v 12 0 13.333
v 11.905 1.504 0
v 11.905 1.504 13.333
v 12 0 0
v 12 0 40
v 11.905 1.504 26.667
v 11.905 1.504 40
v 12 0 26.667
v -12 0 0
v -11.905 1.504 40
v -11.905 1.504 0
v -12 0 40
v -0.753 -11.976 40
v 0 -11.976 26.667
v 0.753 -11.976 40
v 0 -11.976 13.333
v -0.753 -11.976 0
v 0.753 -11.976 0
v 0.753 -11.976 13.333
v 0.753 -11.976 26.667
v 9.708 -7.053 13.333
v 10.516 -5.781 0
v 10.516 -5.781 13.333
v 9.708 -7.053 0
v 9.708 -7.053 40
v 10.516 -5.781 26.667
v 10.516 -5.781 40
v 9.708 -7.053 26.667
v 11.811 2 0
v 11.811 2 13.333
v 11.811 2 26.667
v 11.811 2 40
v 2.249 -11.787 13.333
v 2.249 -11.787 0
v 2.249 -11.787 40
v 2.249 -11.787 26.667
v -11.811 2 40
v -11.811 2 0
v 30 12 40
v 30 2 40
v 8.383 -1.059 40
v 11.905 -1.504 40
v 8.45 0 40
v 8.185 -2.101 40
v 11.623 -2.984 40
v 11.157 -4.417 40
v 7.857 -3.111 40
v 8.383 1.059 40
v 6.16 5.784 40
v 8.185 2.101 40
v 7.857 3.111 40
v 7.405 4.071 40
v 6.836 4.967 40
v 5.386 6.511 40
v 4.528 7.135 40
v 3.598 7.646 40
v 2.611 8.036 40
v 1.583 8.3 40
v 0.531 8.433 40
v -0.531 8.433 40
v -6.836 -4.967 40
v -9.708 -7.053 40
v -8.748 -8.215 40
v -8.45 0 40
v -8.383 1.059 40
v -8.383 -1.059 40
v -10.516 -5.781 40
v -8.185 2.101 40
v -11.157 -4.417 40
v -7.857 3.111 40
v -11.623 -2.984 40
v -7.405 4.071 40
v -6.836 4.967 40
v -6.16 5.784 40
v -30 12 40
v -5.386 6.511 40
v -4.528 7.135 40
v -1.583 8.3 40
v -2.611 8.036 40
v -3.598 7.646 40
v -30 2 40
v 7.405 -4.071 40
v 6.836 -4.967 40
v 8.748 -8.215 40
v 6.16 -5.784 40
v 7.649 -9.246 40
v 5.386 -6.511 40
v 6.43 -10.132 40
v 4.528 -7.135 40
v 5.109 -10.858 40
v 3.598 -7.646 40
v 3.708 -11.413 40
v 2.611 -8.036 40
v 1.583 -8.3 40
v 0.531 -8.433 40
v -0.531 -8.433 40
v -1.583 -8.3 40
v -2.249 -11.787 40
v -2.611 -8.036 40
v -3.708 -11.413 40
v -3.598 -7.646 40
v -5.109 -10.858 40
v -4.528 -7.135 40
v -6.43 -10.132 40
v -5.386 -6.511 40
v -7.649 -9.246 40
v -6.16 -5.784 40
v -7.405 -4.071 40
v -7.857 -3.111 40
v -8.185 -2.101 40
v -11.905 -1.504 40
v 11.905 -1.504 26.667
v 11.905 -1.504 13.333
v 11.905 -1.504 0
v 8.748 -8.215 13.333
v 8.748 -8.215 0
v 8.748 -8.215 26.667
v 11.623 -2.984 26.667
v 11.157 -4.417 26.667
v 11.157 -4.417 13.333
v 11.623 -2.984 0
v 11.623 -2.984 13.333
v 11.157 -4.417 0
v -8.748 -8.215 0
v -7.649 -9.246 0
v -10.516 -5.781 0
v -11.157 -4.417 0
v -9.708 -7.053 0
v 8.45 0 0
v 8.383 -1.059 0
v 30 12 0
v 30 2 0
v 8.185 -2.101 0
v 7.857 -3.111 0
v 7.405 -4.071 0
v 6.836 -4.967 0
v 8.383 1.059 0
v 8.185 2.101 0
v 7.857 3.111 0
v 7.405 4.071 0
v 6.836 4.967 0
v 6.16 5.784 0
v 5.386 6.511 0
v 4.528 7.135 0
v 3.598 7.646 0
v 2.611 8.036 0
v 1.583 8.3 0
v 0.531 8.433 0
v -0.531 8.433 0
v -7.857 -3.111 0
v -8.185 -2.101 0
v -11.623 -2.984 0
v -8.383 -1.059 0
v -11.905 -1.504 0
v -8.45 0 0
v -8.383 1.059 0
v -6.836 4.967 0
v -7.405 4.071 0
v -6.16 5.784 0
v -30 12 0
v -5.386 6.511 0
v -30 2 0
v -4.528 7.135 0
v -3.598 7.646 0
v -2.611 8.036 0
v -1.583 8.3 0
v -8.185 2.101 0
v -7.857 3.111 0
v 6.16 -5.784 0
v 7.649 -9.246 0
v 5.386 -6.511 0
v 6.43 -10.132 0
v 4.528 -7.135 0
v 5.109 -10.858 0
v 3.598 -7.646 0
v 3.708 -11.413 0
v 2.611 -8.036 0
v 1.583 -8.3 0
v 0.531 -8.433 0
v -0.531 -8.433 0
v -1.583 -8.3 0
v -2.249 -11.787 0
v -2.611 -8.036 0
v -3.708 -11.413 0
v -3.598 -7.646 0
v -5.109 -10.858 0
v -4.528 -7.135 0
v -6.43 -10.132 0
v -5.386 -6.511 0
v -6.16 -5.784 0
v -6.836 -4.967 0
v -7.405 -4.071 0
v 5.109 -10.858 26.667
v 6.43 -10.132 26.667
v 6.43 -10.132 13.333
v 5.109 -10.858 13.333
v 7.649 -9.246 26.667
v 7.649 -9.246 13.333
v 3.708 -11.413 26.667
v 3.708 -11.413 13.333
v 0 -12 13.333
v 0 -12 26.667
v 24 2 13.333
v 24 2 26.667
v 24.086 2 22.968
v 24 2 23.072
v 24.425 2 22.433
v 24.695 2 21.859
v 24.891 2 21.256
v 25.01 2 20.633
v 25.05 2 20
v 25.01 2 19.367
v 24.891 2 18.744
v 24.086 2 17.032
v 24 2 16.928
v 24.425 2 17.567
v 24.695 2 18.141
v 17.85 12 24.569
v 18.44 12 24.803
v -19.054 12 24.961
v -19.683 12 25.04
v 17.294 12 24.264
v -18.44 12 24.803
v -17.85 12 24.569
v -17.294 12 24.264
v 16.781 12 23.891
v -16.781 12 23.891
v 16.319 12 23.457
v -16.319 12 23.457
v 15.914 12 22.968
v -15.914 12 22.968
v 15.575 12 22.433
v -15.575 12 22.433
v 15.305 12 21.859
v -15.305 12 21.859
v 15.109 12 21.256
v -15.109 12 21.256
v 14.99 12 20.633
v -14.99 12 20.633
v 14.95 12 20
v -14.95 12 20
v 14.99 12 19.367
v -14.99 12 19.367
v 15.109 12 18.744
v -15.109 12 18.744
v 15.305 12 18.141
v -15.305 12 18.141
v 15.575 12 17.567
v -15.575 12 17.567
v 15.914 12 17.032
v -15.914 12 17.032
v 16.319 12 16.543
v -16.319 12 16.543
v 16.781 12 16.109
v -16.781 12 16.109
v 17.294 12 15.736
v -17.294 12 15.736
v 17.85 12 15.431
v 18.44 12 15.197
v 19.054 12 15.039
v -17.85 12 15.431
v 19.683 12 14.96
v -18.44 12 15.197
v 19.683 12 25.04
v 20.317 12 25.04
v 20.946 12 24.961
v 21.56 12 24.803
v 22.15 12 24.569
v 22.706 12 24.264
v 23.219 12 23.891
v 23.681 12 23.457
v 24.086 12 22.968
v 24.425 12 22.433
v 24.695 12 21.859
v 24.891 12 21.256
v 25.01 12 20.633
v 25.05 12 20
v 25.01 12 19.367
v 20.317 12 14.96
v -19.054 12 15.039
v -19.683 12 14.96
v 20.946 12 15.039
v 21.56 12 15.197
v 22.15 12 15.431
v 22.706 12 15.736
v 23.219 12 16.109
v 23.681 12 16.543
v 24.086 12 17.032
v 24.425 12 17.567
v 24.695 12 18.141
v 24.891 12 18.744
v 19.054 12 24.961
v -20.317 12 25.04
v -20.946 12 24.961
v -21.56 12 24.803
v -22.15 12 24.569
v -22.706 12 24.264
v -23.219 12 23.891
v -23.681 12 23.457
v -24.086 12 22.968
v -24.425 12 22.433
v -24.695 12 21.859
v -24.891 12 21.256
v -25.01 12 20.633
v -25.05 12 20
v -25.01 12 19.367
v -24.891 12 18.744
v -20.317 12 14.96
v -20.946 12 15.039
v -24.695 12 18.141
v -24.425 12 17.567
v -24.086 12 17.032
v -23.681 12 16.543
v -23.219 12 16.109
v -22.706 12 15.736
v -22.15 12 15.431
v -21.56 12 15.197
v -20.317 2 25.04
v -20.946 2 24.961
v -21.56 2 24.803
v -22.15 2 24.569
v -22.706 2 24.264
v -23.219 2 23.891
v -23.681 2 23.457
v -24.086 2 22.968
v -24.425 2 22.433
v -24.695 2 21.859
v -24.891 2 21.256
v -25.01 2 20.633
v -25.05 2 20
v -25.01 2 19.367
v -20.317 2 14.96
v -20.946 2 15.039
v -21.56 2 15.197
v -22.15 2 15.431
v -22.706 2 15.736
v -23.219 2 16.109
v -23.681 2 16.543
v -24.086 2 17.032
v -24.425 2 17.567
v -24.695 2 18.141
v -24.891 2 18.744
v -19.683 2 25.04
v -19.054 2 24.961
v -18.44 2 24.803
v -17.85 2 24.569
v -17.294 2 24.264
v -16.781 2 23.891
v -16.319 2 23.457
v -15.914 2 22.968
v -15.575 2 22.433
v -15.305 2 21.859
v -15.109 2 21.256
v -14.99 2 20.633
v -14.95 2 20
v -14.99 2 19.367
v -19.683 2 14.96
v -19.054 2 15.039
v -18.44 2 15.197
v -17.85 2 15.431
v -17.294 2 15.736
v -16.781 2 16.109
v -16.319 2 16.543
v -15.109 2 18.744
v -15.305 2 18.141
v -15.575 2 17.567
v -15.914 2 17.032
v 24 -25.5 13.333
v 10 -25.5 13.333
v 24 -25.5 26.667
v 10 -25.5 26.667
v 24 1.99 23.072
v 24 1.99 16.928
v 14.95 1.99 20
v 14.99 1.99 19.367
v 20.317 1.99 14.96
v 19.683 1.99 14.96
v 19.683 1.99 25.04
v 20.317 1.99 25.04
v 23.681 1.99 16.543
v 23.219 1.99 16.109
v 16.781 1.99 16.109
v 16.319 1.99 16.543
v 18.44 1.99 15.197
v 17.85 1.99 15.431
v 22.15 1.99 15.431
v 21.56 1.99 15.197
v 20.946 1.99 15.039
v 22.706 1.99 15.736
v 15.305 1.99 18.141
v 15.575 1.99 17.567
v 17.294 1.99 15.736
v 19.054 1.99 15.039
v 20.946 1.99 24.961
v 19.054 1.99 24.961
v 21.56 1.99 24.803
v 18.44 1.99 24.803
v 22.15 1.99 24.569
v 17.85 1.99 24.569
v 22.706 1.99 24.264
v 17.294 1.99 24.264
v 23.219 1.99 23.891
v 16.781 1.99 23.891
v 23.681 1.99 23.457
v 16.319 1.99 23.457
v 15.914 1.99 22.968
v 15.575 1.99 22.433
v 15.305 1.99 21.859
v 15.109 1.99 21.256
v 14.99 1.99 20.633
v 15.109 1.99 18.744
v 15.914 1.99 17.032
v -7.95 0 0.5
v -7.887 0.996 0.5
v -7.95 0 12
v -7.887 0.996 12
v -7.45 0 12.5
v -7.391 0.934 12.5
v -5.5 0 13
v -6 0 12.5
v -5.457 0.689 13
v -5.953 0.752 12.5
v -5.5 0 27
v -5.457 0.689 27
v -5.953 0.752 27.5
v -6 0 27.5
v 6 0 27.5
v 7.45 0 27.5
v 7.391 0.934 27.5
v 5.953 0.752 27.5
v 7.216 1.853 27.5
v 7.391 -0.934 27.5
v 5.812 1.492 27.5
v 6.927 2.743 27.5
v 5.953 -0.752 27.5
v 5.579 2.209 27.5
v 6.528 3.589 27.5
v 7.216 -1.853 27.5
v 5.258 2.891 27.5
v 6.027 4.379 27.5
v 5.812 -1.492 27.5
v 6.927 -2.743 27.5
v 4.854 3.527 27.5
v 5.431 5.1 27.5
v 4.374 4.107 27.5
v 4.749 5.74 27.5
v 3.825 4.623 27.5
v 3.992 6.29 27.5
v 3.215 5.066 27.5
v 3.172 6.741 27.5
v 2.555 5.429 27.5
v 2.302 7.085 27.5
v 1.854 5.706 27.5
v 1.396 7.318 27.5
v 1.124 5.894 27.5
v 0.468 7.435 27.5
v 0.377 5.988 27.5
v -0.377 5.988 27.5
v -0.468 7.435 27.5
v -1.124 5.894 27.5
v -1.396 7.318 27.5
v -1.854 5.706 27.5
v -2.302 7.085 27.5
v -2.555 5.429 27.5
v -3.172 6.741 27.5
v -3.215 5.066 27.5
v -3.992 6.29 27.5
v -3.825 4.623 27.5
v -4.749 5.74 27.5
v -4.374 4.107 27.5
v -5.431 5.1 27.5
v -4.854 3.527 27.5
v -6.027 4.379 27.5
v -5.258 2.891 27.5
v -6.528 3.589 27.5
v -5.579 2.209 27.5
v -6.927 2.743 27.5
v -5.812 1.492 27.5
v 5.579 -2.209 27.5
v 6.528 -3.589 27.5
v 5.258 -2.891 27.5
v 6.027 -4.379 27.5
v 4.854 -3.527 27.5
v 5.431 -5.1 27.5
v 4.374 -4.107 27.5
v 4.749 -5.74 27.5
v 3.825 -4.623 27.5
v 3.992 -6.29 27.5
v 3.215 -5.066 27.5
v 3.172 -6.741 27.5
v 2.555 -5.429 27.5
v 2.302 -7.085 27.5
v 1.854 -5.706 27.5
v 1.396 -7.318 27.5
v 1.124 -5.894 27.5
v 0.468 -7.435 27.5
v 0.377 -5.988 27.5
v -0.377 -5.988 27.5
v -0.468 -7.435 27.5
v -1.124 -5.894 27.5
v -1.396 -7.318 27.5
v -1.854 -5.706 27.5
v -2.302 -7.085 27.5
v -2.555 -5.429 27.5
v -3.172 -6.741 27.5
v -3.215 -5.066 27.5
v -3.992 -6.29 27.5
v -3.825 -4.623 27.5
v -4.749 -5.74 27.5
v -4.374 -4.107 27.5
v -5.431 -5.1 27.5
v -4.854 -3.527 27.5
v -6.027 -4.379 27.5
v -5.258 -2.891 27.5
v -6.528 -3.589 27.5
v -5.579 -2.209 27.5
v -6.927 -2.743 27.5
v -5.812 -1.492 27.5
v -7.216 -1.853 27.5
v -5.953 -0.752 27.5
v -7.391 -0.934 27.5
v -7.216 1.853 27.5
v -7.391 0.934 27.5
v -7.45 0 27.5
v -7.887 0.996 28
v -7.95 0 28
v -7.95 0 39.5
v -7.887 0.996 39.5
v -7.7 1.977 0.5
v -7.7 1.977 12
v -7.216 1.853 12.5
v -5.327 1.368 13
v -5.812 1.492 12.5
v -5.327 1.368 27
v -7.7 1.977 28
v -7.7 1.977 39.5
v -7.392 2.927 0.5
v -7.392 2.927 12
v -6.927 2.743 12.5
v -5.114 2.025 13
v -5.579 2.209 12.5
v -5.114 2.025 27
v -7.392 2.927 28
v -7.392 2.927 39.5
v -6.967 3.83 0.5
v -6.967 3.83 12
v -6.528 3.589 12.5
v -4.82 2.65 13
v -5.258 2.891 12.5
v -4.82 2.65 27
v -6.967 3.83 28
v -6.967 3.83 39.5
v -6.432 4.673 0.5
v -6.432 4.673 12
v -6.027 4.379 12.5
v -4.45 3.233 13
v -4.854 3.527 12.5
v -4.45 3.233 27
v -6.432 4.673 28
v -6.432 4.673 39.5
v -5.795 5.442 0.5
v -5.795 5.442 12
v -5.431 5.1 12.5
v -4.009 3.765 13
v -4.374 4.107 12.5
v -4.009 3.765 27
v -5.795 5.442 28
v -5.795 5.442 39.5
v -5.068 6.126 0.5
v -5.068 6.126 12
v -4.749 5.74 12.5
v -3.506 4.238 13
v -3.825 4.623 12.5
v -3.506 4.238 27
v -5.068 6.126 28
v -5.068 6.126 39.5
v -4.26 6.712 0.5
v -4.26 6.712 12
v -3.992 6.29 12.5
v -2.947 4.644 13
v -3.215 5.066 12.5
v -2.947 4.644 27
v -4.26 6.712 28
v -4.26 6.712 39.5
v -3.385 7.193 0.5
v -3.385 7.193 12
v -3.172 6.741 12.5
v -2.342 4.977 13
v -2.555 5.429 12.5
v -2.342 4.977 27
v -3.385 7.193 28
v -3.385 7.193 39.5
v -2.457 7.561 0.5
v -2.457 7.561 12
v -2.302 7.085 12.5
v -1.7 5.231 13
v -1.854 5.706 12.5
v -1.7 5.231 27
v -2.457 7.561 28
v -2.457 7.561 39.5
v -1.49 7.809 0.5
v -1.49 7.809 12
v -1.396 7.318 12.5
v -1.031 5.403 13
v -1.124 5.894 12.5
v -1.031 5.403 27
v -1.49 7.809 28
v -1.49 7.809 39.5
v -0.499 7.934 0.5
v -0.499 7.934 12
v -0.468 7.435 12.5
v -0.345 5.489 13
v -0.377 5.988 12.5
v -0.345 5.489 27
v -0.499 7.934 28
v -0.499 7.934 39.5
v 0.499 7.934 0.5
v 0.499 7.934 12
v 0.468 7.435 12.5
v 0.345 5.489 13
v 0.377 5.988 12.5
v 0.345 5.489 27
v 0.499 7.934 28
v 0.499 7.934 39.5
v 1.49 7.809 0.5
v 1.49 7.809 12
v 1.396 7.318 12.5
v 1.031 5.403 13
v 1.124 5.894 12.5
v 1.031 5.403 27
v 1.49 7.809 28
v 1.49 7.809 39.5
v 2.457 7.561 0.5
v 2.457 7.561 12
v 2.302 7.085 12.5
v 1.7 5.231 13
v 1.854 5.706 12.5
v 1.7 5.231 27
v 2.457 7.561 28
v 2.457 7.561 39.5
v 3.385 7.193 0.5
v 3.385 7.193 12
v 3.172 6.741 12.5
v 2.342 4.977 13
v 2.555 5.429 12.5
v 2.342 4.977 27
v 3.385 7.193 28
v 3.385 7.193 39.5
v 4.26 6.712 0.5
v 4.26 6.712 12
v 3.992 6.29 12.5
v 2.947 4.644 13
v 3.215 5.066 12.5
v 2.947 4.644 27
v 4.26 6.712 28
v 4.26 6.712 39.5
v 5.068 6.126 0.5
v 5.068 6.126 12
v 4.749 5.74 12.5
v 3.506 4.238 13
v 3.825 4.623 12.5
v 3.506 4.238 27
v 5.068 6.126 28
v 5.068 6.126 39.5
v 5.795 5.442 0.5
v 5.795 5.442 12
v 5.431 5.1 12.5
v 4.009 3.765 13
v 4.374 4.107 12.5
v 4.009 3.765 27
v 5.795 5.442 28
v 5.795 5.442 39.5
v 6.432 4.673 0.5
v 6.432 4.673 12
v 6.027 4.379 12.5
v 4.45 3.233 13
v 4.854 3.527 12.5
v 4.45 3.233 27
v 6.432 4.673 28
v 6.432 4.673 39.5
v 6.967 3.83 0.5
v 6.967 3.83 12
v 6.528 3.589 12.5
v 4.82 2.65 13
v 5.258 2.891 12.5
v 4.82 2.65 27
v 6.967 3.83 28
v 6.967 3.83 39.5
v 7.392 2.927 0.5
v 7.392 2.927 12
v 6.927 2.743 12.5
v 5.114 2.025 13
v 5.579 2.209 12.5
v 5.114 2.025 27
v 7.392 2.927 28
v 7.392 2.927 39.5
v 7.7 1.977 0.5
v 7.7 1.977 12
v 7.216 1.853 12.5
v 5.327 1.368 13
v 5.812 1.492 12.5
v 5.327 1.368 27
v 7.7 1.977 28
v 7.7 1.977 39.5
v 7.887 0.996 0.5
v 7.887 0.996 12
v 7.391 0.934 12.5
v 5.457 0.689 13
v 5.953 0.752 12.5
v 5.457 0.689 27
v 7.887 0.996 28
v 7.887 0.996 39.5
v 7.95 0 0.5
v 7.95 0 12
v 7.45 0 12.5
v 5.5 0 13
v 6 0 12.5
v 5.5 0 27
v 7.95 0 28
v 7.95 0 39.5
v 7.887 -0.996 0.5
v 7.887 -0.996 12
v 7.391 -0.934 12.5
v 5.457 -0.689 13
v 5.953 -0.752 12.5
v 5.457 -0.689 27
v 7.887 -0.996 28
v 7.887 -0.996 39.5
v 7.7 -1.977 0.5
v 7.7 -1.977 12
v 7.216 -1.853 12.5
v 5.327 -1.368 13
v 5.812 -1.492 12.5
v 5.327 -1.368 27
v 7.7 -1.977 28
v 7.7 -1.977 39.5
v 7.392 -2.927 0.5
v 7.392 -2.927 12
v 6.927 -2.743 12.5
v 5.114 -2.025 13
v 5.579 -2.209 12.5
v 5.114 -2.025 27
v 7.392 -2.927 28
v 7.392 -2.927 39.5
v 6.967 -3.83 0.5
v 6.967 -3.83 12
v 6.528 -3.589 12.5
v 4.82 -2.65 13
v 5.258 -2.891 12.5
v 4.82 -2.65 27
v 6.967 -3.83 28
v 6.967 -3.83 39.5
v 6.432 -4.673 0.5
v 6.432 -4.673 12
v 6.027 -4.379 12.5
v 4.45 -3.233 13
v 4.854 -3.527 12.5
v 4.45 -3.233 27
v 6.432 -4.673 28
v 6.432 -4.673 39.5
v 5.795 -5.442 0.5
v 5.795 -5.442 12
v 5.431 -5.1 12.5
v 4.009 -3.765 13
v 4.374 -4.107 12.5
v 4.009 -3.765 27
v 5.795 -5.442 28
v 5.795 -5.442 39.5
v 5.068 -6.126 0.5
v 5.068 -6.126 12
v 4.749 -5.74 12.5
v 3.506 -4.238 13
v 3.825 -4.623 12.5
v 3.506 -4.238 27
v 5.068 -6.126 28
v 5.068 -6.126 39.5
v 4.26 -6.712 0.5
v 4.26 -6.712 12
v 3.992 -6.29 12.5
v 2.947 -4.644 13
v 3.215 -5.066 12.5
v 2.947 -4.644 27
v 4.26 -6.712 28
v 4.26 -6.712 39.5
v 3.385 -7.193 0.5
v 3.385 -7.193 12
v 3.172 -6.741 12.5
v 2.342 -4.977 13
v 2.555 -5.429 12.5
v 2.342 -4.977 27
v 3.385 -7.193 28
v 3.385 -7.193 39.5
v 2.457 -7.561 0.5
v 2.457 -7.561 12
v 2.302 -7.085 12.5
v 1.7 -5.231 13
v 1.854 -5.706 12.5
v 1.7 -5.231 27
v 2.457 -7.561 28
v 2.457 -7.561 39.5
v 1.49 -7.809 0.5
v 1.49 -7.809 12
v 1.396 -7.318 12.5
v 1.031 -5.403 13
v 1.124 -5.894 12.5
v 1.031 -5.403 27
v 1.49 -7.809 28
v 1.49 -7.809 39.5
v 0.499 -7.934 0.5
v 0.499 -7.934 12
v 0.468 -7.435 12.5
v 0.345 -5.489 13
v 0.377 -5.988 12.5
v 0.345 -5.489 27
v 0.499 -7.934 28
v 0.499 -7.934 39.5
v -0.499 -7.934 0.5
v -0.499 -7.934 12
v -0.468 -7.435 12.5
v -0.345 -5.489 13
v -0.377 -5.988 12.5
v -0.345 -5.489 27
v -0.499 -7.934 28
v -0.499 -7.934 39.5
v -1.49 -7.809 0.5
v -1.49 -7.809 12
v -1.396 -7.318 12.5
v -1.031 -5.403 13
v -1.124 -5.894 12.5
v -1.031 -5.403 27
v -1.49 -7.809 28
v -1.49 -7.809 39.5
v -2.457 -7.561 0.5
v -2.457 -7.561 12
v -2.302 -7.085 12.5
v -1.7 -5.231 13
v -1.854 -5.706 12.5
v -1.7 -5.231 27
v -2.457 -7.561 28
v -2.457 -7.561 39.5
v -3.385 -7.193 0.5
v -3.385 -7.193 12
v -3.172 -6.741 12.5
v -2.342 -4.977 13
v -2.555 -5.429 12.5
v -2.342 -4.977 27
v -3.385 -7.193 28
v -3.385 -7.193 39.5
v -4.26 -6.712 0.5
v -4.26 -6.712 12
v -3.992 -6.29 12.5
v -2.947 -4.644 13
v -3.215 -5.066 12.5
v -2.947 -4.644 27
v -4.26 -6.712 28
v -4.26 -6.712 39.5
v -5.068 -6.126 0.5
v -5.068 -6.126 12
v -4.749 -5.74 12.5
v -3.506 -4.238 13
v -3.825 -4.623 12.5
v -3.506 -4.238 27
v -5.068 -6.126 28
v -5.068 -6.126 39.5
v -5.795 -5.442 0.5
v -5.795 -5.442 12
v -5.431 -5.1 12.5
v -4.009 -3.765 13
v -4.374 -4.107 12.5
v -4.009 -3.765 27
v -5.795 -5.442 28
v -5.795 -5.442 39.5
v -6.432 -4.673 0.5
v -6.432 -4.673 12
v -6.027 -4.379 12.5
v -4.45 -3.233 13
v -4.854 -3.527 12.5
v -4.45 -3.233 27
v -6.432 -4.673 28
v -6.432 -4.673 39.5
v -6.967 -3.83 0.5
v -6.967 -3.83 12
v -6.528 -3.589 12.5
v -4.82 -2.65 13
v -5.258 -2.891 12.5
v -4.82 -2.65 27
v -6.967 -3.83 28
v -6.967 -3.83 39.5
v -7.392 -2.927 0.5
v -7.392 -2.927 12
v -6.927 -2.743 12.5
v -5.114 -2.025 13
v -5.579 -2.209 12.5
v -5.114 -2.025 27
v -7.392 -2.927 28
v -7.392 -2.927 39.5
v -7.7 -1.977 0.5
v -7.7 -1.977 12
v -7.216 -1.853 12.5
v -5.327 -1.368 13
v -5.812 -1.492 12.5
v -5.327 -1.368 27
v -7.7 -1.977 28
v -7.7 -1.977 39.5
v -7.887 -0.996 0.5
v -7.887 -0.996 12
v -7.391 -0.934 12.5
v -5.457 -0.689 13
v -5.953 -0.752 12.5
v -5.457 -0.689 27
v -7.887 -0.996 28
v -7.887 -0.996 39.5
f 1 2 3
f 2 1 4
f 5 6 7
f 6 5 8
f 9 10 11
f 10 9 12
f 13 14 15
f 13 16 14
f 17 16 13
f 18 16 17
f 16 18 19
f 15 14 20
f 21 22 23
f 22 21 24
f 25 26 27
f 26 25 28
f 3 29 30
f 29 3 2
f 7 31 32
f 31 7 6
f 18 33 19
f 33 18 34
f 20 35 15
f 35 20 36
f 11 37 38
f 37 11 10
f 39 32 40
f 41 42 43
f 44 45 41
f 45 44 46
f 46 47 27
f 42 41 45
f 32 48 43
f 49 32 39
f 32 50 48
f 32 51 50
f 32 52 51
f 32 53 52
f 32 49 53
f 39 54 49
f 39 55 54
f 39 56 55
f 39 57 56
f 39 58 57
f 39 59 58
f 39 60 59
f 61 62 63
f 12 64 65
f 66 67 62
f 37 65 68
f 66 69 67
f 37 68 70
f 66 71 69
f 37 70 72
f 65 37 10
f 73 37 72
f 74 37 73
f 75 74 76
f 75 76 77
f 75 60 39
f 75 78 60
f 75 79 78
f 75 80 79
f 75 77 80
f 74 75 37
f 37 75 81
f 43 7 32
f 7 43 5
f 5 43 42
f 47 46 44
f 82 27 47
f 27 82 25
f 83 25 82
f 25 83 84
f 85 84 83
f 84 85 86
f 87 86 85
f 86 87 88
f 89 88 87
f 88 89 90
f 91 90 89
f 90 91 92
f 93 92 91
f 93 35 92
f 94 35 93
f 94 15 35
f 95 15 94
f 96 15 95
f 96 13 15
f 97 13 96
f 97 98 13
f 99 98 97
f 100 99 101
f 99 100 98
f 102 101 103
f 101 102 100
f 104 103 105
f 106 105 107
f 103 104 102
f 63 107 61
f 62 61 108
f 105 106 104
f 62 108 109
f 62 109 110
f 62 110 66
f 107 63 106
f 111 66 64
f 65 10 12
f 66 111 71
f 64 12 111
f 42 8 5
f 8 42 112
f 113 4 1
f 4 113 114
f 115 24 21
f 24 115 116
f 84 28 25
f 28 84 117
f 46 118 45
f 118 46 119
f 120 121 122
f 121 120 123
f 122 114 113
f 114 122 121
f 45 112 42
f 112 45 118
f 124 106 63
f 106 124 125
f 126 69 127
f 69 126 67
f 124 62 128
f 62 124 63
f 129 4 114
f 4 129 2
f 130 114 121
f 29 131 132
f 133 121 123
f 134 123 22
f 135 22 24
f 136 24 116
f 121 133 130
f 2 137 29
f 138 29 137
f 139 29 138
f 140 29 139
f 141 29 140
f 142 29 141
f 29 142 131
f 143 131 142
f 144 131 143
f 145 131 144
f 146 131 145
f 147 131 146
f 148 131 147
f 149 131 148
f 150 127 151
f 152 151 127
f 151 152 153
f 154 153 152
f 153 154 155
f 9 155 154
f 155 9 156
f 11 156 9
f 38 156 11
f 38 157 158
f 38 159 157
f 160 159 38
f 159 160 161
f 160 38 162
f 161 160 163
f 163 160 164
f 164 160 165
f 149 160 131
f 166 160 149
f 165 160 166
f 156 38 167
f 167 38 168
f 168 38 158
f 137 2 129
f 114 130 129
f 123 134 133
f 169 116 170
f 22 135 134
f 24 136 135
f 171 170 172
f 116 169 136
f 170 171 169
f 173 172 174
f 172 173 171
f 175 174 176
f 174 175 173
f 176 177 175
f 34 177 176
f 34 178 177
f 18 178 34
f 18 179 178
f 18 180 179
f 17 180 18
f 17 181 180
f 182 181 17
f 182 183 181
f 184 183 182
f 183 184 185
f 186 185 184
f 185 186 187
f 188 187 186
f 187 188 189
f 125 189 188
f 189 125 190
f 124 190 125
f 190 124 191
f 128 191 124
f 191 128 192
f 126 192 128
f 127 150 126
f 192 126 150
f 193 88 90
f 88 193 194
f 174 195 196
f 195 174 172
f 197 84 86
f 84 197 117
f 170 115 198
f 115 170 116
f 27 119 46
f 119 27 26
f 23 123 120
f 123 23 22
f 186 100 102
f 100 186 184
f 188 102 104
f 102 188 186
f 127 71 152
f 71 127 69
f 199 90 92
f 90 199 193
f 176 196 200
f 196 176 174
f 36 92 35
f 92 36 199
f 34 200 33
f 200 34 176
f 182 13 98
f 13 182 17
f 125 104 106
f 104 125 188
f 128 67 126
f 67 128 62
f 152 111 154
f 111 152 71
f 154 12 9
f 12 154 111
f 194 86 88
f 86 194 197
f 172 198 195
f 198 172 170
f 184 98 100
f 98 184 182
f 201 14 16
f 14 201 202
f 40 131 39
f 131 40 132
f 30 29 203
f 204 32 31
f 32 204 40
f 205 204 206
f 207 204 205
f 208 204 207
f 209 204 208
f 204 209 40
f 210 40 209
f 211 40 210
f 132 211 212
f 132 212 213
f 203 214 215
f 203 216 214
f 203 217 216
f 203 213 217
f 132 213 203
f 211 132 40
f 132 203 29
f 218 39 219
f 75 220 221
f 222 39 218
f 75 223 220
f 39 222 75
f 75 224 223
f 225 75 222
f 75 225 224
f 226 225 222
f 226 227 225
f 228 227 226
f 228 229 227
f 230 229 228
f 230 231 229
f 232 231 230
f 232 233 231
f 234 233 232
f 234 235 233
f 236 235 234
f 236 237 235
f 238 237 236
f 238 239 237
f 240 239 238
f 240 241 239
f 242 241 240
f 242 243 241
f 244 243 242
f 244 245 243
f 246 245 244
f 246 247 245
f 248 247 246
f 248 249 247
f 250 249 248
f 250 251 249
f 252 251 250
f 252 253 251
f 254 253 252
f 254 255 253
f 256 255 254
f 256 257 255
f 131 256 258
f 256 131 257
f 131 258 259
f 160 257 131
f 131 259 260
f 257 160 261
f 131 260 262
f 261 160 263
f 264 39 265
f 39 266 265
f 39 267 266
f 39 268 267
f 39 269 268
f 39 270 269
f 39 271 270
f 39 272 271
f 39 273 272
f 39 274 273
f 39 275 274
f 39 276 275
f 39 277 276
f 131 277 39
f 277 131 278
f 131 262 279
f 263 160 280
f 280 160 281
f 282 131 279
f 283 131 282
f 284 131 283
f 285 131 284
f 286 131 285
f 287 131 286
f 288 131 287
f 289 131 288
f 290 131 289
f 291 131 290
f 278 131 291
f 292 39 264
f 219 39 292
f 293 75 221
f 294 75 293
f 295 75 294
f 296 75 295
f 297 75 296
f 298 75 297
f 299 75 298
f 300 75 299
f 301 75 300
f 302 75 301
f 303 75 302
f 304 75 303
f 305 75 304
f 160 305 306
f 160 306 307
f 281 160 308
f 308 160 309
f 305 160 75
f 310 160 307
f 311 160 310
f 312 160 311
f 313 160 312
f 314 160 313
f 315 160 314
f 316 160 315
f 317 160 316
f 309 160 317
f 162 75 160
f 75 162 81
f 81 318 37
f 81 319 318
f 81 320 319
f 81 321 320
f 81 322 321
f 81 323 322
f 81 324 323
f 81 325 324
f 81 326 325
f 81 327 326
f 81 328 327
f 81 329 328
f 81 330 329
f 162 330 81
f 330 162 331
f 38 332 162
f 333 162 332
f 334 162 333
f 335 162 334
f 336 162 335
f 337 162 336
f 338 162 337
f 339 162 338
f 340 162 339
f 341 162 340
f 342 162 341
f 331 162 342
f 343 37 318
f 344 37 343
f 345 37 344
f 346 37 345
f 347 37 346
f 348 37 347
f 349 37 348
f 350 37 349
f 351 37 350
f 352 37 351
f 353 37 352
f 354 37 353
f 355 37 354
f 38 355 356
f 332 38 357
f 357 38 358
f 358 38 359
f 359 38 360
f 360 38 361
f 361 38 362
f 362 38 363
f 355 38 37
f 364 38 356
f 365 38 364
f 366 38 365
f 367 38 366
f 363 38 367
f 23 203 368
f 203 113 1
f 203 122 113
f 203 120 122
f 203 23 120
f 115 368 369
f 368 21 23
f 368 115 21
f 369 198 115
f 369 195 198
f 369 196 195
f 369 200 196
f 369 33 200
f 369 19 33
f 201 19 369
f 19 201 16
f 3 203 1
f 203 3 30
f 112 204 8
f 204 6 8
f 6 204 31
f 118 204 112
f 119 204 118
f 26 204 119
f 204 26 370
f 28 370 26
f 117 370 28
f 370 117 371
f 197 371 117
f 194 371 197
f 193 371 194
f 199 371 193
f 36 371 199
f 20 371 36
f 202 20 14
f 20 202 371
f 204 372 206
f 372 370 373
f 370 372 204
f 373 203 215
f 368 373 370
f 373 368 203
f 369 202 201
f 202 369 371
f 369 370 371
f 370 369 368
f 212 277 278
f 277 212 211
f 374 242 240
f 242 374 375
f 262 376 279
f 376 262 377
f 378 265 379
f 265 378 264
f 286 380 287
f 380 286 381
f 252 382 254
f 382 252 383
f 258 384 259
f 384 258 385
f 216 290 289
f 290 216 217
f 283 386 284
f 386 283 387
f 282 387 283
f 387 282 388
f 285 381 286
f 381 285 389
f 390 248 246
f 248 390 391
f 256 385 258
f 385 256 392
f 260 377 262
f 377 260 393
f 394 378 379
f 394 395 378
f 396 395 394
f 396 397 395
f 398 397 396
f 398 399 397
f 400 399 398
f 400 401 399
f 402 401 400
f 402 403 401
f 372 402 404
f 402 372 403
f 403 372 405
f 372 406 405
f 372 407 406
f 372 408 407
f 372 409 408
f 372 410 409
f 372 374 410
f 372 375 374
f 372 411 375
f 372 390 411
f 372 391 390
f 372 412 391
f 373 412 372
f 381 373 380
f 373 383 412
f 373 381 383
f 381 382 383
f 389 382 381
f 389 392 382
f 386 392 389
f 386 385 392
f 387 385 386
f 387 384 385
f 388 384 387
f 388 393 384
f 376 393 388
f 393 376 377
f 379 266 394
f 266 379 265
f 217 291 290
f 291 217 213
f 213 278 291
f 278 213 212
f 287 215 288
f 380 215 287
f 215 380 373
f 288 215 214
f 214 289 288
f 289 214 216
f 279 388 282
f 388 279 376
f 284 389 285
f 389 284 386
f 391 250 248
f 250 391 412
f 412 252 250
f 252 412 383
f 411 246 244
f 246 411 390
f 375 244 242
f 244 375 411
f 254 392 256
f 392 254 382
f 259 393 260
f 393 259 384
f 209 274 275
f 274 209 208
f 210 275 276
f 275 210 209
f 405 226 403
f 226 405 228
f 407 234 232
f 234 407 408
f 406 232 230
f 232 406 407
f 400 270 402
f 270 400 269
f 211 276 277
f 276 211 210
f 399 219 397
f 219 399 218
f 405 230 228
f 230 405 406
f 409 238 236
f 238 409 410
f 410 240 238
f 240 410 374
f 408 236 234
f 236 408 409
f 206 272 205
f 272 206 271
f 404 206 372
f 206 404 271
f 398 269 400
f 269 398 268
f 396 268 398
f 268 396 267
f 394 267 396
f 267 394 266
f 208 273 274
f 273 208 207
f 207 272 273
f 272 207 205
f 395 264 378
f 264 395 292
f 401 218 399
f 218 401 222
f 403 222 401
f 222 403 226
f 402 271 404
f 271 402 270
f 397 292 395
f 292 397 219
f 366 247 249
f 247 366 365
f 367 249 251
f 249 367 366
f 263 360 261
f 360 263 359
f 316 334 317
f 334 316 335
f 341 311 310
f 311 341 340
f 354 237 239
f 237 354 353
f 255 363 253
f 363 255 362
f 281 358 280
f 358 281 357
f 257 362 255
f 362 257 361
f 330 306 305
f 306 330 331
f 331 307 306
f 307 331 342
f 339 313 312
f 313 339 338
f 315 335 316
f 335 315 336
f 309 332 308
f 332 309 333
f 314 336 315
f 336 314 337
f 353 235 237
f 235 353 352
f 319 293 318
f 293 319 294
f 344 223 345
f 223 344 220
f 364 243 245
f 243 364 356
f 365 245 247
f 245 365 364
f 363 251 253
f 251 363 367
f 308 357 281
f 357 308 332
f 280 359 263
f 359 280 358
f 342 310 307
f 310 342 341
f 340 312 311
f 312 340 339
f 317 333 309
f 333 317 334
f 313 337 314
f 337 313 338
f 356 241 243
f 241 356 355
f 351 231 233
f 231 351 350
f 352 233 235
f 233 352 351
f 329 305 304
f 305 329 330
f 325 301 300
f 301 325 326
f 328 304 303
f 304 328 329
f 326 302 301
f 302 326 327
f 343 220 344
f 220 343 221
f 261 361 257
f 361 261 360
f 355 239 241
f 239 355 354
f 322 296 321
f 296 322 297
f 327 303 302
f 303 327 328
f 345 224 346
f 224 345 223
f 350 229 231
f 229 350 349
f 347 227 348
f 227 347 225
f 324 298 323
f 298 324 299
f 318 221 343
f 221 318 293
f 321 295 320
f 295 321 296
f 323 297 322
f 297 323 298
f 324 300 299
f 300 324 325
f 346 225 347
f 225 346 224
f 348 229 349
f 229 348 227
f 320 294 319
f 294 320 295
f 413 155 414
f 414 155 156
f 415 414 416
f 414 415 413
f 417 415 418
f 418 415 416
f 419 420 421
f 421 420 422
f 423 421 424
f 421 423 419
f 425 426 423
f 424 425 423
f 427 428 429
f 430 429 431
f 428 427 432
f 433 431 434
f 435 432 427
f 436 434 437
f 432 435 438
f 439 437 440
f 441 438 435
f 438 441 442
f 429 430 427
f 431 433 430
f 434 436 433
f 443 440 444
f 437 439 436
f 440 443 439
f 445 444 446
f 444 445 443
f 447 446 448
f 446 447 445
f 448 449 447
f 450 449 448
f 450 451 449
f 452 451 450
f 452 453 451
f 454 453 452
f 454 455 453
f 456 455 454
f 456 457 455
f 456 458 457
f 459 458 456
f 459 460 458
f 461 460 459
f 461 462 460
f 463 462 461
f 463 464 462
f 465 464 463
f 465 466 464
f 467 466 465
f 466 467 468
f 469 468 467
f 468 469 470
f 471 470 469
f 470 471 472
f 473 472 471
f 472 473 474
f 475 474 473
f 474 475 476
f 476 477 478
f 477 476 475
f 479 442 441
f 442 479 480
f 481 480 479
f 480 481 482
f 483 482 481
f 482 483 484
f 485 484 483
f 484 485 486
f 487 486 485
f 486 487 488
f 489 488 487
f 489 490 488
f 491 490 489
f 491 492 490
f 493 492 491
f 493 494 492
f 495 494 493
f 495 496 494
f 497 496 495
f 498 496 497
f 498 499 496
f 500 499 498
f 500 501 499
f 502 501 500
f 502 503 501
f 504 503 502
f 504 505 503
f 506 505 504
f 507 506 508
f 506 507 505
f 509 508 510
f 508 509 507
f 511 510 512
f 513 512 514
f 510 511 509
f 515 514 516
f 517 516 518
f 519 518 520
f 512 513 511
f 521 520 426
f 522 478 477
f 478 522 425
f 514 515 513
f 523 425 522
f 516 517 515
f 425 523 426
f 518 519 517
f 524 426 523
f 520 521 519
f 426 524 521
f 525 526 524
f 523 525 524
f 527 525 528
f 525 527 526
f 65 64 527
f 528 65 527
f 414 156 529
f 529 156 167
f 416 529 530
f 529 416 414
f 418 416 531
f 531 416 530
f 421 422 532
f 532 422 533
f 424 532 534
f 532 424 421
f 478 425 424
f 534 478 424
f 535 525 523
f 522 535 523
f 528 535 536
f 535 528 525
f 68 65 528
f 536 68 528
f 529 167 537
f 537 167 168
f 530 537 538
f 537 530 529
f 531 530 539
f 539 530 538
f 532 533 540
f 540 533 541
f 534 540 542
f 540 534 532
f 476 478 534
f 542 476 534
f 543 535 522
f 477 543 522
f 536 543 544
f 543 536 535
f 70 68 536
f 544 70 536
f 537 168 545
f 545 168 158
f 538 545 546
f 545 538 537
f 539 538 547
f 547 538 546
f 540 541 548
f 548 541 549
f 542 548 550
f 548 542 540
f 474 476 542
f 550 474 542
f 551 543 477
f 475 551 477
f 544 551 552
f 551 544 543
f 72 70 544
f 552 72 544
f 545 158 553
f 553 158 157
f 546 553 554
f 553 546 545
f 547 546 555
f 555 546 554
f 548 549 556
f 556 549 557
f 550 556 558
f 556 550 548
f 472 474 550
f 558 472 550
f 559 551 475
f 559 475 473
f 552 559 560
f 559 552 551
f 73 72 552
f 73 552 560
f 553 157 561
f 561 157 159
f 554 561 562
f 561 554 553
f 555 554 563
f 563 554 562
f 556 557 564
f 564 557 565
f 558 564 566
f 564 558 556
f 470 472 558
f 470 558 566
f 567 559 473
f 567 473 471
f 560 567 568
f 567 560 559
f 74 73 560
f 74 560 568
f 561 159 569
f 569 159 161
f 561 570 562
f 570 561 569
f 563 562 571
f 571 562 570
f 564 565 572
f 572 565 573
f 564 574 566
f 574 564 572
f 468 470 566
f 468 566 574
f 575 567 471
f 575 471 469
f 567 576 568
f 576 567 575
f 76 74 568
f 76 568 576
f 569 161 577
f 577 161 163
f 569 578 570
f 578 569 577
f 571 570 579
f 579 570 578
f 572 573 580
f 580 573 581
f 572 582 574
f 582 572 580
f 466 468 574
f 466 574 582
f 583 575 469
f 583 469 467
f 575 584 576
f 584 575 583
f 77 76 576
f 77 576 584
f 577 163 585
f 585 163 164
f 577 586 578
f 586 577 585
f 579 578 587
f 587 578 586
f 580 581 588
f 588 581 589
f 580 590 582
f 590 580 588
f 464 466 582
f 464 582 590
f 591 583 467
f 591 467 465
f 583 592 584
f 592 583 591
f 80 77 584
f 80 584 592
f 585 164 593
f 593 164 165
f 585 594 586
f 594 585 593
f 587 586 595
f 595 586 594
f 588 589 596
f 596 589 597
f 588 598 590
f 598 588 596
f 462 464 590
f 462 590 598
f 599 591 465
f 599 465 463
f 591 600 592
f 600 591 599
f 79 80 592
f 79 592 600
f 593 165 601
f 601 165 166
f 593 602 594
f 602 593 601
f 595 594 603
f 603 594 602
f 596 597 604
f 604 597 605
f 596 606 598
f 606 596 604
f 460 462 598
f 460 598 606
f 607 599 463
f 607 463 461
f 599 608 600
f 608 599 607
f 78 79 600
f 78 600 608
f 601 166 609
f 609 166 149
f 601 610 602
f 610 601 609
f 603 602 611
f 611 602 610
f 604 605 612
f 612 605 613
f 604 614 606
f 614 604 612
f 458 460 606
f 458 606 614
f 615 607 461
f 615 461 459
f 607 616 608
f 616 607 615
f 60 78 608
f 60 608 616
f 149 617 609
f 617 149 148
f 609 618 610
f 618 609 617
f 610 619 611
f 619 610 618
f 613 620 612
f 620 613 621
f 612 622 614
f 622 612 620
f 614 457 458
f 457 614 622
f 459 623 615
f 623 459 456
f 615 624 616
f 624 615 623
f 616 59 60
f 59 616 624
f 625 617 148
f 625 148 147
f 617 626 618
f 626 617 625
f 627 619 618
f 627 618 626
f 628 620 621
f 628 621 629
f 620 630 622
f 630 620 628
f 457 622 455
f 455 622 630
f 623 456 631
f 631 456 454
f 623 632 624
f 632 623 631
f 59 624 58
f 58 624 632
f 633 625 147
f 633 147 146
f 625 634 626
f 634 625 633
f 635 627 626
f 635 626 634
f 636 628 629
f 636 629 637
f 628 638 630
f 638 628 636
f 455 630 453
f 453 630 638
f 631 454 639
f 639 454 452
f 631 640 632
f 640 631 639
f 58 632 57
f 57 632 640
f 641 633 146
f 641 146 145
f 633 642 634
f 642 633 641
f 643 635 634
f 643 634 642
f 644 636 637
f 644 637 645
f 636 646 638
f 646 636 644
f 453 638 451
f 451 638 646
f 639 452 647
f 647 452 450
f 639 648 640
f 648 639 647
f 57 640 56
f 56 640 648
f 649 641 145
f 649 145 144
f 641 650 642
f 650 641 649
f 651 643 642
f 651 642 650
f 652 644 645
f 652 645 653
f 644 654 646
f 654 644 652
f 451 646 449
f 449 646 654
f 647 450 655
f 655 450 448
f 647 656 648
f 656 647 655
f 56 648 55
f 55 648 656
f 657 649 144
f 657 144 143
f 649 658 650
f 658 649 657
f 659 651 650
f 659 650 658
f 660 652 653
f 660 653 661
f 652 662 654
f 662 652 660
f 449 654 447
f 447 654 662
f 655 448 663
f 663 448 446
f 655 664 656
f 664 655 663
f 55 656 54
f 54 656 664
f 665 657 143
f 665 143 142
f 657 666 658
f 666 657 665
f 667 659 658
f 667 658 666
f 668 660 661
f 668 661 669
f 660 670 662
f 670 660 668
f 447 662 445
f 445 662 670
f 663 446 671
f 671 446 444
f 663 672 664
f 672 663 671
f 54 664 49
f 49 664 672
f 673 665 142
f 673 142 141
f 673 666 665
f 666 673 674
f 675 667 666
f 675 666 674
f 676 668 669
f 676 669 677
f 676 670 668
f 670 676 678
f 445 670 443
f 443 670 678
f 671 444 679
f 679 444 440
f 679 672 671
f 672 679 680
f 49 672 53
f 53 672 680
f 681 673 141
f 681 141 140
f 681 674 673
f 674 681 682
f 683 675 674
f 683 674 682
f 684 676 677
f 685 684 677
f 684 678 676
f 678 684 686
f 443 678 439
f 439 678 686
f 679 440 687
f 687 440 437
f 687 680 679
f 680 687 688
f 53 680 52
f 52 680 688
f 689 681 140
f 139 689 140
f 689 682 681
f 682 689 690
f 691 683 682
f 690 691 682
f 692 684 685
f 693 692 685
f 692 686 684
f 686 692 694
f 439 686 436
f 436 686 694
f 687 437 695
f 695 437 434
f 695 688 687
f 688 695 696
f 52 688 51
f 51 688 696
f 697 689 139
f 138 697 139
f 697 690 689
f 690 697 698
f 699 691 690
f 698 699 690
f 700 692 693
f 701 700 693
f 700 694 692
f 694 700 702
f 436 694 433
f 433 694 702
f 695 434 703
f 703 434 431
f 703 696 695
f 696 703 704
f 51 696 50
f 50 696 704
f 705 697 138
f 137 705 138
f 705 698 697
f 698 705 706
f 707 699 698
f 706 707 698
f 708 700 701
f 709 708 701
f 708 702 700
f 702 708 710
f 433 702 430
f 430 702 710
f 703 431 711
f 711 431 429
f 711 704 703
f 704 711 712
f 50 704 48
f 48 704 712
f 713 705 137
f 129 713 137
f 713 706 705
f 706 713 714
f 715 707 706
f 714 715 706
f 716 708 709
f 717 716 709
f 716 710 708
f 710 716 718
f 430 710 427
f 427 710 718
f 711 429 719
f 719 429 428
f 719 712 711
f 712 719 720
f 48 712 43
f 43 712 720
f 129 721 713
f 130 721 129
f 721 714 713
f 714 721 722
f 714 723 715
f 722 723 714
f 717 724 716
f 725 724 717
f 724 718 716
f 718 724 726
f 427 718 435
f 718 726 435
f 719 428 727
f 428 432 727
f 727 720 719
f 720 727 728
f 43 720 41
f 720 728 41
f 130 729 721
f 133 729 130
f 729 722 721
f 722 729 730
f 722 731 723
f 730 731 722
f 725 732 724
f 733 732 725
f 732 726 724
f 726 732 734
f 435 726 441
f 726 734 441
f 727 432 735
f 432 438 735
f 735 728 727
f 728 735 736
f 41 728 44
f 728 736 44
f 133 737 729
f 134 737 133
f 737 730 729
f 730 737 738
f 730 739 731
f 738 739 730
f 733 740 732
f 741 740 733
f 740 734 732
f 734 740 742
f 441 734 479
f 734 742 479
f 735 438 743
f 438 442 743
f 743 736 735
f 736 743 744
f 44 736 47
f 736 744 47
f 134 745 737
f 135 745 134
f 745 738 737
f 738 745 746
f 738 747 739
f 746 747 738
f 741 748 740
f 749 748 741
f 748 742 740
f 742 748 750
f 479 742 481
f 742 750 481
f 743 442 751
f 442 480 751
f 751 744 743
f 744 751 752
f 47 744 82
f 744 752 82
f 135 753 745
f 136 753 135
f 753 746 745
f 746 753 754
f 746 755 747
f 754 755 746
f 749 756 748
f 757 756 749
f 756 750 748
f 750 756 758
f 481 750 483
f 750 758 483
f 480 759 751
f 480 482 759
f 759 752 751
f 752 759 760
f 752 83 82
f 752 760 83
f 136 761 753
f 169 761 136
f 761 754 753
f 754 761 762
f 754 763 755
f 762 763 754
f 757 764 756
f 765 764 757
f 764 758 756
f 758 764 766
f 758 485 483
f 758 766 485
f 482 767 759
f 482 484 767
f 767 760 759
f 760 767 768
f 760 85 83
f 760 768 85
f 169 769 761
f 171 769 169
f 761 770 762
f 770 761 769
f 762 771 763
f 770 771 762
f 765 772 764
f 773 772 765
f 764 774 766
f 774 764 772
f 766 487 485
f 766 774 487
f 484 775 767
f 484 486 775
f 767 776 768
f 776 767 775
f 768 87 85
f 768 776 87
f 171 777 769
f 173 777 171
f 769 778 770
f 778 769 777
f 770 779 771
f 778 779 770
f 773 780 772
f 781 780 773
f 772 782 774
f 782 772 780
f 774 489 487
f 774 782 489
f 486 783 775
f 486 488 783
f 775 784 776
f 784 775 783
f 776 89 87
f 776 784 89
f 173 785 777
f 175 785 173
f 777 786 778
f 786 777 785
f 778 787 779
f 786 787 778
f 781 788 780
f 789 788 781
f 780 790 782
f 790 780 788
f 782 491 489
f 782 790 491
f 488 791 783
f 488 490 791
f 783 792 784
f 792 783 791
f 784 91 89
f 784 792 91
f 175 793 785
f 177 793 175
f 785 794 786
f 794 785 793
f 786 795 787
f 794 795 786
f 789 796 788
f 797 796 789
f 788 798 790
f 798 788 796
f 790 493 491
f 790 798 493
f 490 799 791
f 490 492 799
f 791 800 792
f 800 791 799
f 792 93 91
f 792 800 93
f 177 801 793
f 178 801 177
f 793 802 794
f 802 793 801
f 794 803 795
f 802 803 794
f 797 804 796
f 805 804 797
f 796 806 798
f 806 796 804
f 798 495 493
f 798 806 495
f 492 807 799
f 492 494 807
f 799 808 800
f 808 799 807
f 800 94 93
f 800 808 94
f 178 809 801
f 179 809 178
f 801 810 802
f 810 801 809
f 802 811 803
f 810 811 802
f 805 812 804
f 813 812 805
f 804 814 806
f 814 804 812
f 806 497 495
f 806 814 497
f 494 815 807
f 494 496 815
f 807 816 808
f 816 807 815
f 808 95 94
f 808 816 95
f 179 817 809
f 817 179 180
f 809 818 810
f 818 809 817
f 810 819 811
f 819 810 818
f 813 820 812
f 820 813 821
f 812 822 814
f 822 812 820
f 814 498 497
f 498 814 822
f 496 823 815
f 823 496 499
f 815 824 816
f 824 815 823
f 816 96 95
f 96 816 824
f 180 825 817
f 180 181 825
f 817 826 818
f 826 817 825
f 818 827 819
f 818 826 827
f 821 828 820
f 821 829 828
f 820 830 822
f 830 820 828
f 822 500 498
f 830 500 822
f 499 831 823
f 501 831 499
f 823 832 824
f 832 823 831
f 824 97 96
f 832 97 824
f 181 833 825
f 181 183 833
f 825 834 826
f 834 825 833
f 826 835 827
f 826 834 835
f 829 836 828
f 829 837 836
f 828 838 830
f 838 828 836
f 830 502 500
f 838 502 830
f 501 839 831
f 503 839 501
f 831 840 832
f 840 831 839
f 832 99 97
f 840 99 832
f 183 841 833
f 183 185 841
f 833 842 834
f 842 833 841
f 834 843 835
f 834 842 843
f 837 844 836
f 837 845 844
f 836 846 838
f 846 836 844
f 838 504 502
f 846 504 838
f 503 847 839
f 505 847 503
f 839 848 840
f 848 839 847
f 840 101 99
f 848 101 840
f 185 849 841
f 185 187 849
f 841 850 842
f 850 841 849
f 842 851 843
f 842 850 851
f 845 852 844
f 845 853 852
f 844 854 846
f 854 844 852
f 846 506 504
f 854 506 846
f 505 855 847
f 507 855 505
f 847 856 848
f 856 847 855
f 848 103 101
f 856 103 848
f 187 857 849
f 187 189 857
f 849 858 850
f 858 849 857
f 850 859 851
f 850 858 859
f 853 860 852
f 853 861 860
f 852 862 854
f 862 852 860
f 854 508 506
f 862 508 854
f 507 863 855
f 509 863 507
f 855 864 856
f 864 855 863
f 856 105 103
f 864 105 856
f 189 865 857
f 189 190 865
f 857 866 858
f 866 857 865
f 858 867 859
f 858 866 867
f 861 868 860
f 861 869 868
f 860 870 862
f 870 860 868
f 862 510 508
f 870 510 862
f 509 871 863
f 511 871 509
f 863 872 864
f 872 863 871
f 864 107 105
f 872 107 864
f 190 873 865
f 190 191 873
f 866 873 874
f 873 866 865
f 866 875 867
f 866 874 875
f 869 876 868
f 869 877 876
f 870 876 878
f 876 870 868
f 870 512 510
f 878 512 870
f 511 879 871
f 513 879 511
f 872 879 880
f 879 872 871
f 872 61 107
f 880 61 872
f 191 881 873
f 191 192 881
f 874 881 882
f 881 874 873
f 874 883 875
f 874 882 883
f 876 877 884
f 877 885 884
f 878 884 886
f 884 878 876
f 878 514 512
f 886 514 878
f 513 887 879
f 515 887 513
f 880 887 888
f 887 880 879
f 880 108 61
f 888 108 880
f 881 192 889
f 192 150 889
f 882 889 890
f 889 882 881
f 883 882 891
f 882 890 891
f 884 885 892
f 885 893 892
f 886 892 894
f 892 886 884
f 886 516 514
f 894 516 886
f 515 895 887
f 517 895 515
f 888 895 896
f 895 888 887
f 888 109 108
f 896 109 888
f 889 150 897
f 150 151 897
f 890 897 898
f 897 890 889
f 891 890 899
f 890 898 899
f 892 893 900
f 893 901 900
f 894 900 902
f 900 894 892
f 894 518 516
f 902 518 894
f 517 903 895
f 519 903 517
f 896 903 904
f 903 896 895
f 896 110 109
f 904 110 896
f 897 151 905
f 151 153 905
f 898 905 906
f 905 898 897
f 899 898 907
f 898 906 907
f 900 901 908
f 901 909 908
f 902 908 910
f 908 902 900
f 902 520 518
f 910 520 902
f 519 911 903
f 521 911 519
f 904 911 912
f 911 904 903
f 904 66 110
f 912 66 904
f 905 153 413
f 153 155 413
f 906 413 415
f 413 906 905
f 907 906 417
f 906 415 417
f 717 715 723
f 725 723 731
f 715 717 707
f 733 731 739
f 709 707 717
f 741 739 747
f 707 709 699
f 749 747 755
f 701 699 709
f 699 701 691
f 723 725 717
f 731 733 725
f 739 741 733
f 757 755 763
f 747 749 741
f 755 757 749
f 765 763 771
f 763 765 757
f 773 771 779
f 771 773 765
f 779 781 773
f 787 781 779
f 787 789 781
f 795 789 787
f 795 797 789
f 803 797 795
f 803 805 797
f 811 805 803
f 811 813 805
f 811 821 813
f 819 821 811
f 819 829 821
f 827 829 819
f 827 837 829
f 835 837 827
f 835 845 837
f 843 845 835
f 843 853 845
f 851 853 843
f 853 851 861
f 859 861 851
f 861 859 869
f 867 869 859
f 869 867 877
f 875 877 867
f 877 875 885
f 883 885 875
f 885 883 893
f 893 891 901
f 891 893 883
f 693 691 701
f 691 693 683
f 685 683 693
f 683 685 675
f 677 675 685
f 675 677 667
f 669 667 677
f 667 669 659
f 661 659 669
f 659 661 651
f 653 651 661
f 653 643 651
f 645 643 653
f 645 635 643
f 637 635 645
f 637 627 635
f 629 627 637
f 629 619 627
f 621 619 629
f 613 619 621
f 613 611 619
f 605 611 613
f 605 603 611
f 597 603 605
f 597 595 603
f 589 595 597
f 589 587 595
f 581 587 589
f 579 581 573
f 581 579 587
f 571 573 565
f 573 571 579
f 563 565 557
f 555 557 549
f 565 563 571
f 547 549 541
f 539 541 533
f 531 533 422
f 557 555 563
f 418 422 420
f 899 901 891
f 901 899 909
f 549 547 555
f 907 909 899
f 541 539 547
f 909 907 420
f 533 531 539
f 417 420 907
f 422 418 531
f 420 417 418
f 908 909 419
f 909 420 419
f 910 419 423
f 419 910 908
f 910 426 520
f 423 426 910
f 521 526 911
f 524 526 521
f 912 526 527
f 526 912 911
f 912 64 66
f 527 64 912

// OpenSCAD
//Partie tenant les diam_tiges
largeur = 24;
epaisseur_support = 10;
largeur_support = 30;
hauteur=40;
diam_tige=10;
jeu_tige=0.1;
trou_de_vis_3 = 3.5;
x_axe_vis = -1;
largeur_ecrou_3 = 5.8;
hauteur_ecrou_3 = 6.5;
epaisseur_ecrou_3 = 3;
profondeur_trou_vis_3 = 22;
x_cent_tige = 20;
z_cent_tige = 10;
//glissière
diam_bague = 15.9;
prof_bague=12.5;
chanfrein = 0.5;

diff_trou = largeur+largeur/2 - (x_cent_tige+diam_tige/2);
facettes=50;
color("red")
//translate([0,0,largeur/2])
//rotate([0,-90,0])

difference()
{
    // BLoc principal
    union() 
    {
        cylinder(h=hauteur,r=largeur/2,$fn=facettes);
    
        translate([0,largeur/2-epaisseur_support,0])
            cube ([largeur_support, epaisseur_support, hauteur]);
        translate([-largeur_support,largeur/2-epaisseur_support,0])
            cube ([largeur_support, epaisseur_support, hauteur]);
        translate([0,0,hauteur/3])
        linear_extrude(height=hauteur/3)
            polygon( points=
            [[0,3],//0
            [24,3],//1
            [24,-25.5],//2
            [10,-25.5],//3
            [0,-12],//4
            ]);

    } // union

    
    
    //trou no 1
    translate([x_cent_tige,largeur/2-epaisseur_support-.01,hauteur/2])
        rotate([-90,0,0])
            cylinder(h=epaisseur_support+0.02,d=diam_tige+jeu_tige,$fn=facettes);
    //trou no 2
    translate([-x_cent_tige,largeur/2-epaisseur_support-.01,hauteur/2])
        rotate([-90,0,0])
            cylinder(h=largeur/2+2,r=(diam_tige+jeu_tige)/2,$fn=facettes);
/*  
    // Coche no 1
    translate([largeur*1.2,largeur/2-1,hauteur - z_cent_tige])
        cube([x_cent_tige,largeur,2],center=true);
    // Coche no 2
    translate([largeur*1.2,largeur/2,z_cent_tige])
        cube([x_cent_tige,largeur,2],center=true);
     
    //trou Vis de serrage 1
    translate([largeur+largeur/2-diff_trou/2+x_axe_vis,largeur/4+0.5,-0.5])
        cylinder(h=21,d=trou_de_vis_3,$fn=facettes);
        
    // passage ecrou 3mm
    translate([x_axe_vis+largeur+largeur/2-hauteur_ecrou_3+0.5,largeur/4+0.5-largeur_ecrou_3/2,diam_tige*1.52])
        cube([hauteur_ecrou_3+1,largeur_ecrou_3 ,epaisseur_ecrou_3]);
    translate([x_axe_vis+largeur+largeur/2-diff_trou/2-0.5,largeur/4+0.5,diam_tige*1.52])
        rotate([0,0,90])
            linear_extrude(height=epaisseur_ecrou_3)
                polygon( points=
                [[0,-hauteur_ecrou_3/2],//0
                [largeur_ecrou_3/2,hauteur_ecrou_3/2*sin(-30)],//1
                [largeur_ecrou_3/2,hauteur_ecrou_3/2*sin(30)],//2
                [0,hauteur_ecrou_3/2],//3
                [-largeur_ecrou_3/2,hauteur_ecrou_3/2*cos(60)],//4
                [-largeur_ecrou_3/2,-hauteur_ecrou_3/2*cos(60)]//5
                ]);

    //trou Vis de serrage 2
    translate([x_axe_vis+largeur+largeur/2-diff_trou/2,largeur/4+0.5,hauteur+0.5])
        rotate([0,180,0])
            cylinder(h=21,d=trou_de_vis_3,$fn=facettes);

    // Passage ecrou 2
    translate([x_axe_vis+largeur+largeur/2-hauteur_ecrou_3+0.5,largeur/4+0.5+largeur_ecrou_3/2,hauteur-diam_tige*1.52])
        rotate([180,0,0])
            cube([hauteur_ecrou_3+1,largeur_ecrou_3 ,epaisseur_ecrou_3]);
    translate([largeur+largeur/2-diff_trou/2-0.5,largeur/4+0.5,hauteur-diam_tige*1.52])
        rotate([0,180,90])
            linear_extrude(height=epaisseur_ecrou_3)
                polygon( points=
                [[0,-hauteur_ecrou_3/2],//0
                [largeur_ecrou_3/2,hauteur_ecrou_3/2*sin(-30)],//1
                [largeur_ecrou_3/2,hauteur_ecrou_3/2*sin(30)],//2
                [0,hauteur_ecrou_3/2],//3
                [-largeur_ecrou_3/2,hauteur_ecrou_3/2*cos(60)],//4
                [-largeur_ecrou_3/2,-hauteur_ecrou_3/2*cos(60)]//5
                ]);
                */
    //Extrusion 
    //translate([largeur*1.5,largeur/2,0])
    rotate_extrude($fn=facettes) 
        polygon( points=
        [[0,hauteur+1],//0
        [diam_bague/2+chanfrein,hauteur+1],//1
        [diam_bague/2+chanfrein,hauteur],//2
        [diam_bague/2,hauteur-chanfrein],//3
        [diam_bague/2,hauteur-prof_bague+chanfrein],//4
        [diam_bague/2-chanfrein,hauteur-prof_bague],//5
        [diam_tige/2+0.5+chanfrein,hauteur-prof_bague],//6
        [diam_tige/2+0.5,hauteur-prof_bague-chanfrein],//7
        [diam_tige/2+0.5,prof_bague+chanfrein], //8
        [diam_tige/2+0.5+chanfrein,prof_bague],
        [diam_bague/2-chanfrein,prof_bague],
        [diam_bague/2,prof_bague-chanfrein], //11
        [diam_bague/2,chanfrein],
        [diam_bague/2+chanfrein,0],
        [diam_bague/2+chanfrein,-1],
        [0,-1]
        ]);
        /*
 // vis de serrage courroie 1
    translate([19,-4.5,-1])
        cylinder(h=hauteur+2,d=trou_de_vis_3,$fn=facettes);
    // vis de serrage courroie 2   
    translate([15,-21,-1])
        cylinder(h=hauteur+2,d=trou_de_vis_3,$fn=facettes);
     // Ecrous de serrage courroie
    difference_ecrou = 9-epaisseur_ecrou_3/2;
    // Passage ecrou 3
     translate([15,-21,2*hauteur/3-epaisseur_ecrou_3-3])
     {
        rotate([0,0,-90])
        {
            translate([0,-largeur_ecrou_3/2,0])
                cube([hauteur_ecrou_3+10,largeur_ecrou_3 ,epaisseur_ecrou_3]);
            rotate([0,0,90])
                linear_extrude(height=epaisseur_ecrou_3)
                polygon( points=
                [[0,-hauteur_ecrou_3/2],//0
                [largeur_ecrou_3/2,hauteur_ecrou_3/2*sin(-30)],//1
                [largeur_ecrou_3/2,hauteur_ecrou_3/2*sin(30)],//2
                [0,hauteur_ecrou_3/2],//3
                [-largeur_ecrou_3/2,hauteur_ecrou_3/2*cos(60)],//4
                [-largeur_ecrou_3/2,-hauteur_ecrou_3/2*cos(60)]//5
                ]);
        }
    }  

    translate([15,-21,hauteur/3+3])
     {
        rotate([0,0,-90])
        {
            translate([0,-largeur_ecrou_3/2,0])
                cube([hauteur_ecrou_3+10,largeur_ecrou_3 ,epaisseur_ecrou_3]);
            rotate([0,0,90])
                linear_extrude(height=epaisseur_ecrou_3)
                polygon( points=
                [[0,-hauteur_ecrou_3/2],//0
                [largeur_ecrou_3/2,hauteur_ecrou_3/2*sin(-30)],//1
                [largeur_ecrou_3/2,hauteur_ecrou_3/2*sin(30)],//2
                [0,hauteur_ecrou_3/2],//3
                [-largeur_ecrou_3/2,hauteur_ecrou_3/2*cos(60)],//4
                [-largeur_ecrou_3/2,-hauteur_ecrou_3/2*cos(60)]//5
                ]);
        }
    }  

    translate([15,-4.5,hauteur/3+3])
     {

        translate([0,-largeur_ecrou_3/2,0])
            cube([hauteur_ecrou_3+10,largeur_ecrou_3 ,epaisseur_ecrou_3]);
        rotate([0,0,90])
            linear_extrude(height=epaisseur_ecrou_3)
            polygon( points=
            [[0,-hauteur_ecrou_3/2],//0
            [largeur_ecrou_3/2,hauteur_ecrou_3/2*sin(-30)],//1
            [largeur_ecrou_3/2,hauteur_ecrou_3/2*sin(30)],//2
            [0,hauteur_ecrou_3/2],//3
            [-largeur_ecrou_3/2,hauteur_ecrou_3/2*cos(60)],//4
            [-largeur_ecrou_3/2,-hauteur_ecrou_3/2*cos(60)]//5
            ]);
    } 
    translate([15,-4.5,2*hauteur/3-epaisseur_ecrou_3-3])
    { 
        translate([0,-largeur_ecrou_3/2,0])
            cube([hauteur_ecrou_3+10,largeur_ecrou_3 ,epaisseur_ecrou_3]);
        rotate([0,0,90])
            linear_extrude(height=epaisseur_ecrou_3)
            polygon( points=
            [[0,-hauteur_ecrou_3/2],//0
            [largeur_ecrou_3/2,hauteur_ecrou_3/2*sin(-30)],//1
            [largeur_ecrou_3/2,hauteur_ecrou_3/2*sin(30)],//2
            [0,hauteur_ecrou_3/2],//3
            [-largeur_ecrou_3/2,hauteur_ecrou_3/2*cos(60)],//4
            [-largeur_ecrou_3/2,-hauteur_ecrou_3/2*cos(60)]//5
            ]);
    }
*/
    
} // fin piece
/*
translate([10,-25.5,hauteur/3-8])
difference()
{
    //serrage de la courroie
    
            linear_extrude(height=6)
                square([14,25.5]);
    //courroie 1
    color("blue")
    translate([-0.01,9,6.0-0.63])
        cube([20,6.51 ,0.64]);

    translate([0.01,15.51,6.01])
    {
        rotate([0,-180,180])
        {
            r=0.75;
            h=6.51;
            // small number
            e=.02;
            for ( i = [0 : 9] )
            {
                translate([1+i*2,0,0.63])
                    rotate([-90,90,0])
                        difference()
                        {
                            cylinder(h,r,r,$fn=facettes);
                            translate ([0,-(r+e),-e]) cube([2*(r+e),2*(r+e),h+2*e]);
                        }
            }
        }
    }
    translate([9,21,-0.01])
        cylinder(h=6.02,d=trou_de_vis_3,$fn=facettes);
    // vis de serrage courroie 2   
    translate([5,4.5,-0.01])
        cylinder(h=6.02,d=trou_de_vis_3,$fn=facettes);
    translate([-10,25.5,-0.01])
    cylinder(h=6.02,d=25,$fn=facettes);
}

translate([10,-25.5,2*hauteur/3+2])
difference()
{
    //serrage de la courroie
    
            linear_extrude(height=6)
                square([14,25.5]);
    
    translate([9,21,-0.01])
        cylinder(h=6.02,d=trou_de_vis_3,$fn=facettes);
    // vis de serrage courroie 2   
    translate([5,4.5,-0.01])
        cylinder(h=6.02,d=trou_de_vis_3,$fn=facettes);
    translate([-10,25.5,-0.01])
    cylinder(h=6.02,d=25,$fn=facettes);
}

translate([10,-25.5,2*hauteur/3+2+6+2])
difference()
{
    //serrage de la courroie
    
            linear_extrude(height=6)
                square([14,25.5]);
    //courroie 1
    color("blue")
    translate([-0.01,9,-0.01])
        cube([20,6.51 ,0.65]);

    translate([20.01,15.51,0])
    {
        rotate([0,0,180])
        {
            r=0.75;
            h=6.51;
            // small number
            e=.02;
            for ( i = [0 : 9] )
            {
                translate([1+i*2,0,0.63])
                    rotate([-90,90,0])
                        difference()
                        {
                            cylinder(h,r,r,$fn=facettes);
                            translate ([0,-(r+e),-e]) cube([2*(r+e),2*(r+e),h+2*e]);
                        }
            }
        }
    }
    translate([9,21,-0.01])
        cylinder(h=6.02,d=trou_de_vis_3,$fn=facettes);
    // vis de serrage courroie 2   
    translate([5,4.5,-0.01])
        cylinder(h=6.02,d=trou_de_vis_3,$fn=facettes);
    translate([-10,25.5,-0.01])
    cylinder(h=6.02,d=25,$fn=facettes);
}
*/
